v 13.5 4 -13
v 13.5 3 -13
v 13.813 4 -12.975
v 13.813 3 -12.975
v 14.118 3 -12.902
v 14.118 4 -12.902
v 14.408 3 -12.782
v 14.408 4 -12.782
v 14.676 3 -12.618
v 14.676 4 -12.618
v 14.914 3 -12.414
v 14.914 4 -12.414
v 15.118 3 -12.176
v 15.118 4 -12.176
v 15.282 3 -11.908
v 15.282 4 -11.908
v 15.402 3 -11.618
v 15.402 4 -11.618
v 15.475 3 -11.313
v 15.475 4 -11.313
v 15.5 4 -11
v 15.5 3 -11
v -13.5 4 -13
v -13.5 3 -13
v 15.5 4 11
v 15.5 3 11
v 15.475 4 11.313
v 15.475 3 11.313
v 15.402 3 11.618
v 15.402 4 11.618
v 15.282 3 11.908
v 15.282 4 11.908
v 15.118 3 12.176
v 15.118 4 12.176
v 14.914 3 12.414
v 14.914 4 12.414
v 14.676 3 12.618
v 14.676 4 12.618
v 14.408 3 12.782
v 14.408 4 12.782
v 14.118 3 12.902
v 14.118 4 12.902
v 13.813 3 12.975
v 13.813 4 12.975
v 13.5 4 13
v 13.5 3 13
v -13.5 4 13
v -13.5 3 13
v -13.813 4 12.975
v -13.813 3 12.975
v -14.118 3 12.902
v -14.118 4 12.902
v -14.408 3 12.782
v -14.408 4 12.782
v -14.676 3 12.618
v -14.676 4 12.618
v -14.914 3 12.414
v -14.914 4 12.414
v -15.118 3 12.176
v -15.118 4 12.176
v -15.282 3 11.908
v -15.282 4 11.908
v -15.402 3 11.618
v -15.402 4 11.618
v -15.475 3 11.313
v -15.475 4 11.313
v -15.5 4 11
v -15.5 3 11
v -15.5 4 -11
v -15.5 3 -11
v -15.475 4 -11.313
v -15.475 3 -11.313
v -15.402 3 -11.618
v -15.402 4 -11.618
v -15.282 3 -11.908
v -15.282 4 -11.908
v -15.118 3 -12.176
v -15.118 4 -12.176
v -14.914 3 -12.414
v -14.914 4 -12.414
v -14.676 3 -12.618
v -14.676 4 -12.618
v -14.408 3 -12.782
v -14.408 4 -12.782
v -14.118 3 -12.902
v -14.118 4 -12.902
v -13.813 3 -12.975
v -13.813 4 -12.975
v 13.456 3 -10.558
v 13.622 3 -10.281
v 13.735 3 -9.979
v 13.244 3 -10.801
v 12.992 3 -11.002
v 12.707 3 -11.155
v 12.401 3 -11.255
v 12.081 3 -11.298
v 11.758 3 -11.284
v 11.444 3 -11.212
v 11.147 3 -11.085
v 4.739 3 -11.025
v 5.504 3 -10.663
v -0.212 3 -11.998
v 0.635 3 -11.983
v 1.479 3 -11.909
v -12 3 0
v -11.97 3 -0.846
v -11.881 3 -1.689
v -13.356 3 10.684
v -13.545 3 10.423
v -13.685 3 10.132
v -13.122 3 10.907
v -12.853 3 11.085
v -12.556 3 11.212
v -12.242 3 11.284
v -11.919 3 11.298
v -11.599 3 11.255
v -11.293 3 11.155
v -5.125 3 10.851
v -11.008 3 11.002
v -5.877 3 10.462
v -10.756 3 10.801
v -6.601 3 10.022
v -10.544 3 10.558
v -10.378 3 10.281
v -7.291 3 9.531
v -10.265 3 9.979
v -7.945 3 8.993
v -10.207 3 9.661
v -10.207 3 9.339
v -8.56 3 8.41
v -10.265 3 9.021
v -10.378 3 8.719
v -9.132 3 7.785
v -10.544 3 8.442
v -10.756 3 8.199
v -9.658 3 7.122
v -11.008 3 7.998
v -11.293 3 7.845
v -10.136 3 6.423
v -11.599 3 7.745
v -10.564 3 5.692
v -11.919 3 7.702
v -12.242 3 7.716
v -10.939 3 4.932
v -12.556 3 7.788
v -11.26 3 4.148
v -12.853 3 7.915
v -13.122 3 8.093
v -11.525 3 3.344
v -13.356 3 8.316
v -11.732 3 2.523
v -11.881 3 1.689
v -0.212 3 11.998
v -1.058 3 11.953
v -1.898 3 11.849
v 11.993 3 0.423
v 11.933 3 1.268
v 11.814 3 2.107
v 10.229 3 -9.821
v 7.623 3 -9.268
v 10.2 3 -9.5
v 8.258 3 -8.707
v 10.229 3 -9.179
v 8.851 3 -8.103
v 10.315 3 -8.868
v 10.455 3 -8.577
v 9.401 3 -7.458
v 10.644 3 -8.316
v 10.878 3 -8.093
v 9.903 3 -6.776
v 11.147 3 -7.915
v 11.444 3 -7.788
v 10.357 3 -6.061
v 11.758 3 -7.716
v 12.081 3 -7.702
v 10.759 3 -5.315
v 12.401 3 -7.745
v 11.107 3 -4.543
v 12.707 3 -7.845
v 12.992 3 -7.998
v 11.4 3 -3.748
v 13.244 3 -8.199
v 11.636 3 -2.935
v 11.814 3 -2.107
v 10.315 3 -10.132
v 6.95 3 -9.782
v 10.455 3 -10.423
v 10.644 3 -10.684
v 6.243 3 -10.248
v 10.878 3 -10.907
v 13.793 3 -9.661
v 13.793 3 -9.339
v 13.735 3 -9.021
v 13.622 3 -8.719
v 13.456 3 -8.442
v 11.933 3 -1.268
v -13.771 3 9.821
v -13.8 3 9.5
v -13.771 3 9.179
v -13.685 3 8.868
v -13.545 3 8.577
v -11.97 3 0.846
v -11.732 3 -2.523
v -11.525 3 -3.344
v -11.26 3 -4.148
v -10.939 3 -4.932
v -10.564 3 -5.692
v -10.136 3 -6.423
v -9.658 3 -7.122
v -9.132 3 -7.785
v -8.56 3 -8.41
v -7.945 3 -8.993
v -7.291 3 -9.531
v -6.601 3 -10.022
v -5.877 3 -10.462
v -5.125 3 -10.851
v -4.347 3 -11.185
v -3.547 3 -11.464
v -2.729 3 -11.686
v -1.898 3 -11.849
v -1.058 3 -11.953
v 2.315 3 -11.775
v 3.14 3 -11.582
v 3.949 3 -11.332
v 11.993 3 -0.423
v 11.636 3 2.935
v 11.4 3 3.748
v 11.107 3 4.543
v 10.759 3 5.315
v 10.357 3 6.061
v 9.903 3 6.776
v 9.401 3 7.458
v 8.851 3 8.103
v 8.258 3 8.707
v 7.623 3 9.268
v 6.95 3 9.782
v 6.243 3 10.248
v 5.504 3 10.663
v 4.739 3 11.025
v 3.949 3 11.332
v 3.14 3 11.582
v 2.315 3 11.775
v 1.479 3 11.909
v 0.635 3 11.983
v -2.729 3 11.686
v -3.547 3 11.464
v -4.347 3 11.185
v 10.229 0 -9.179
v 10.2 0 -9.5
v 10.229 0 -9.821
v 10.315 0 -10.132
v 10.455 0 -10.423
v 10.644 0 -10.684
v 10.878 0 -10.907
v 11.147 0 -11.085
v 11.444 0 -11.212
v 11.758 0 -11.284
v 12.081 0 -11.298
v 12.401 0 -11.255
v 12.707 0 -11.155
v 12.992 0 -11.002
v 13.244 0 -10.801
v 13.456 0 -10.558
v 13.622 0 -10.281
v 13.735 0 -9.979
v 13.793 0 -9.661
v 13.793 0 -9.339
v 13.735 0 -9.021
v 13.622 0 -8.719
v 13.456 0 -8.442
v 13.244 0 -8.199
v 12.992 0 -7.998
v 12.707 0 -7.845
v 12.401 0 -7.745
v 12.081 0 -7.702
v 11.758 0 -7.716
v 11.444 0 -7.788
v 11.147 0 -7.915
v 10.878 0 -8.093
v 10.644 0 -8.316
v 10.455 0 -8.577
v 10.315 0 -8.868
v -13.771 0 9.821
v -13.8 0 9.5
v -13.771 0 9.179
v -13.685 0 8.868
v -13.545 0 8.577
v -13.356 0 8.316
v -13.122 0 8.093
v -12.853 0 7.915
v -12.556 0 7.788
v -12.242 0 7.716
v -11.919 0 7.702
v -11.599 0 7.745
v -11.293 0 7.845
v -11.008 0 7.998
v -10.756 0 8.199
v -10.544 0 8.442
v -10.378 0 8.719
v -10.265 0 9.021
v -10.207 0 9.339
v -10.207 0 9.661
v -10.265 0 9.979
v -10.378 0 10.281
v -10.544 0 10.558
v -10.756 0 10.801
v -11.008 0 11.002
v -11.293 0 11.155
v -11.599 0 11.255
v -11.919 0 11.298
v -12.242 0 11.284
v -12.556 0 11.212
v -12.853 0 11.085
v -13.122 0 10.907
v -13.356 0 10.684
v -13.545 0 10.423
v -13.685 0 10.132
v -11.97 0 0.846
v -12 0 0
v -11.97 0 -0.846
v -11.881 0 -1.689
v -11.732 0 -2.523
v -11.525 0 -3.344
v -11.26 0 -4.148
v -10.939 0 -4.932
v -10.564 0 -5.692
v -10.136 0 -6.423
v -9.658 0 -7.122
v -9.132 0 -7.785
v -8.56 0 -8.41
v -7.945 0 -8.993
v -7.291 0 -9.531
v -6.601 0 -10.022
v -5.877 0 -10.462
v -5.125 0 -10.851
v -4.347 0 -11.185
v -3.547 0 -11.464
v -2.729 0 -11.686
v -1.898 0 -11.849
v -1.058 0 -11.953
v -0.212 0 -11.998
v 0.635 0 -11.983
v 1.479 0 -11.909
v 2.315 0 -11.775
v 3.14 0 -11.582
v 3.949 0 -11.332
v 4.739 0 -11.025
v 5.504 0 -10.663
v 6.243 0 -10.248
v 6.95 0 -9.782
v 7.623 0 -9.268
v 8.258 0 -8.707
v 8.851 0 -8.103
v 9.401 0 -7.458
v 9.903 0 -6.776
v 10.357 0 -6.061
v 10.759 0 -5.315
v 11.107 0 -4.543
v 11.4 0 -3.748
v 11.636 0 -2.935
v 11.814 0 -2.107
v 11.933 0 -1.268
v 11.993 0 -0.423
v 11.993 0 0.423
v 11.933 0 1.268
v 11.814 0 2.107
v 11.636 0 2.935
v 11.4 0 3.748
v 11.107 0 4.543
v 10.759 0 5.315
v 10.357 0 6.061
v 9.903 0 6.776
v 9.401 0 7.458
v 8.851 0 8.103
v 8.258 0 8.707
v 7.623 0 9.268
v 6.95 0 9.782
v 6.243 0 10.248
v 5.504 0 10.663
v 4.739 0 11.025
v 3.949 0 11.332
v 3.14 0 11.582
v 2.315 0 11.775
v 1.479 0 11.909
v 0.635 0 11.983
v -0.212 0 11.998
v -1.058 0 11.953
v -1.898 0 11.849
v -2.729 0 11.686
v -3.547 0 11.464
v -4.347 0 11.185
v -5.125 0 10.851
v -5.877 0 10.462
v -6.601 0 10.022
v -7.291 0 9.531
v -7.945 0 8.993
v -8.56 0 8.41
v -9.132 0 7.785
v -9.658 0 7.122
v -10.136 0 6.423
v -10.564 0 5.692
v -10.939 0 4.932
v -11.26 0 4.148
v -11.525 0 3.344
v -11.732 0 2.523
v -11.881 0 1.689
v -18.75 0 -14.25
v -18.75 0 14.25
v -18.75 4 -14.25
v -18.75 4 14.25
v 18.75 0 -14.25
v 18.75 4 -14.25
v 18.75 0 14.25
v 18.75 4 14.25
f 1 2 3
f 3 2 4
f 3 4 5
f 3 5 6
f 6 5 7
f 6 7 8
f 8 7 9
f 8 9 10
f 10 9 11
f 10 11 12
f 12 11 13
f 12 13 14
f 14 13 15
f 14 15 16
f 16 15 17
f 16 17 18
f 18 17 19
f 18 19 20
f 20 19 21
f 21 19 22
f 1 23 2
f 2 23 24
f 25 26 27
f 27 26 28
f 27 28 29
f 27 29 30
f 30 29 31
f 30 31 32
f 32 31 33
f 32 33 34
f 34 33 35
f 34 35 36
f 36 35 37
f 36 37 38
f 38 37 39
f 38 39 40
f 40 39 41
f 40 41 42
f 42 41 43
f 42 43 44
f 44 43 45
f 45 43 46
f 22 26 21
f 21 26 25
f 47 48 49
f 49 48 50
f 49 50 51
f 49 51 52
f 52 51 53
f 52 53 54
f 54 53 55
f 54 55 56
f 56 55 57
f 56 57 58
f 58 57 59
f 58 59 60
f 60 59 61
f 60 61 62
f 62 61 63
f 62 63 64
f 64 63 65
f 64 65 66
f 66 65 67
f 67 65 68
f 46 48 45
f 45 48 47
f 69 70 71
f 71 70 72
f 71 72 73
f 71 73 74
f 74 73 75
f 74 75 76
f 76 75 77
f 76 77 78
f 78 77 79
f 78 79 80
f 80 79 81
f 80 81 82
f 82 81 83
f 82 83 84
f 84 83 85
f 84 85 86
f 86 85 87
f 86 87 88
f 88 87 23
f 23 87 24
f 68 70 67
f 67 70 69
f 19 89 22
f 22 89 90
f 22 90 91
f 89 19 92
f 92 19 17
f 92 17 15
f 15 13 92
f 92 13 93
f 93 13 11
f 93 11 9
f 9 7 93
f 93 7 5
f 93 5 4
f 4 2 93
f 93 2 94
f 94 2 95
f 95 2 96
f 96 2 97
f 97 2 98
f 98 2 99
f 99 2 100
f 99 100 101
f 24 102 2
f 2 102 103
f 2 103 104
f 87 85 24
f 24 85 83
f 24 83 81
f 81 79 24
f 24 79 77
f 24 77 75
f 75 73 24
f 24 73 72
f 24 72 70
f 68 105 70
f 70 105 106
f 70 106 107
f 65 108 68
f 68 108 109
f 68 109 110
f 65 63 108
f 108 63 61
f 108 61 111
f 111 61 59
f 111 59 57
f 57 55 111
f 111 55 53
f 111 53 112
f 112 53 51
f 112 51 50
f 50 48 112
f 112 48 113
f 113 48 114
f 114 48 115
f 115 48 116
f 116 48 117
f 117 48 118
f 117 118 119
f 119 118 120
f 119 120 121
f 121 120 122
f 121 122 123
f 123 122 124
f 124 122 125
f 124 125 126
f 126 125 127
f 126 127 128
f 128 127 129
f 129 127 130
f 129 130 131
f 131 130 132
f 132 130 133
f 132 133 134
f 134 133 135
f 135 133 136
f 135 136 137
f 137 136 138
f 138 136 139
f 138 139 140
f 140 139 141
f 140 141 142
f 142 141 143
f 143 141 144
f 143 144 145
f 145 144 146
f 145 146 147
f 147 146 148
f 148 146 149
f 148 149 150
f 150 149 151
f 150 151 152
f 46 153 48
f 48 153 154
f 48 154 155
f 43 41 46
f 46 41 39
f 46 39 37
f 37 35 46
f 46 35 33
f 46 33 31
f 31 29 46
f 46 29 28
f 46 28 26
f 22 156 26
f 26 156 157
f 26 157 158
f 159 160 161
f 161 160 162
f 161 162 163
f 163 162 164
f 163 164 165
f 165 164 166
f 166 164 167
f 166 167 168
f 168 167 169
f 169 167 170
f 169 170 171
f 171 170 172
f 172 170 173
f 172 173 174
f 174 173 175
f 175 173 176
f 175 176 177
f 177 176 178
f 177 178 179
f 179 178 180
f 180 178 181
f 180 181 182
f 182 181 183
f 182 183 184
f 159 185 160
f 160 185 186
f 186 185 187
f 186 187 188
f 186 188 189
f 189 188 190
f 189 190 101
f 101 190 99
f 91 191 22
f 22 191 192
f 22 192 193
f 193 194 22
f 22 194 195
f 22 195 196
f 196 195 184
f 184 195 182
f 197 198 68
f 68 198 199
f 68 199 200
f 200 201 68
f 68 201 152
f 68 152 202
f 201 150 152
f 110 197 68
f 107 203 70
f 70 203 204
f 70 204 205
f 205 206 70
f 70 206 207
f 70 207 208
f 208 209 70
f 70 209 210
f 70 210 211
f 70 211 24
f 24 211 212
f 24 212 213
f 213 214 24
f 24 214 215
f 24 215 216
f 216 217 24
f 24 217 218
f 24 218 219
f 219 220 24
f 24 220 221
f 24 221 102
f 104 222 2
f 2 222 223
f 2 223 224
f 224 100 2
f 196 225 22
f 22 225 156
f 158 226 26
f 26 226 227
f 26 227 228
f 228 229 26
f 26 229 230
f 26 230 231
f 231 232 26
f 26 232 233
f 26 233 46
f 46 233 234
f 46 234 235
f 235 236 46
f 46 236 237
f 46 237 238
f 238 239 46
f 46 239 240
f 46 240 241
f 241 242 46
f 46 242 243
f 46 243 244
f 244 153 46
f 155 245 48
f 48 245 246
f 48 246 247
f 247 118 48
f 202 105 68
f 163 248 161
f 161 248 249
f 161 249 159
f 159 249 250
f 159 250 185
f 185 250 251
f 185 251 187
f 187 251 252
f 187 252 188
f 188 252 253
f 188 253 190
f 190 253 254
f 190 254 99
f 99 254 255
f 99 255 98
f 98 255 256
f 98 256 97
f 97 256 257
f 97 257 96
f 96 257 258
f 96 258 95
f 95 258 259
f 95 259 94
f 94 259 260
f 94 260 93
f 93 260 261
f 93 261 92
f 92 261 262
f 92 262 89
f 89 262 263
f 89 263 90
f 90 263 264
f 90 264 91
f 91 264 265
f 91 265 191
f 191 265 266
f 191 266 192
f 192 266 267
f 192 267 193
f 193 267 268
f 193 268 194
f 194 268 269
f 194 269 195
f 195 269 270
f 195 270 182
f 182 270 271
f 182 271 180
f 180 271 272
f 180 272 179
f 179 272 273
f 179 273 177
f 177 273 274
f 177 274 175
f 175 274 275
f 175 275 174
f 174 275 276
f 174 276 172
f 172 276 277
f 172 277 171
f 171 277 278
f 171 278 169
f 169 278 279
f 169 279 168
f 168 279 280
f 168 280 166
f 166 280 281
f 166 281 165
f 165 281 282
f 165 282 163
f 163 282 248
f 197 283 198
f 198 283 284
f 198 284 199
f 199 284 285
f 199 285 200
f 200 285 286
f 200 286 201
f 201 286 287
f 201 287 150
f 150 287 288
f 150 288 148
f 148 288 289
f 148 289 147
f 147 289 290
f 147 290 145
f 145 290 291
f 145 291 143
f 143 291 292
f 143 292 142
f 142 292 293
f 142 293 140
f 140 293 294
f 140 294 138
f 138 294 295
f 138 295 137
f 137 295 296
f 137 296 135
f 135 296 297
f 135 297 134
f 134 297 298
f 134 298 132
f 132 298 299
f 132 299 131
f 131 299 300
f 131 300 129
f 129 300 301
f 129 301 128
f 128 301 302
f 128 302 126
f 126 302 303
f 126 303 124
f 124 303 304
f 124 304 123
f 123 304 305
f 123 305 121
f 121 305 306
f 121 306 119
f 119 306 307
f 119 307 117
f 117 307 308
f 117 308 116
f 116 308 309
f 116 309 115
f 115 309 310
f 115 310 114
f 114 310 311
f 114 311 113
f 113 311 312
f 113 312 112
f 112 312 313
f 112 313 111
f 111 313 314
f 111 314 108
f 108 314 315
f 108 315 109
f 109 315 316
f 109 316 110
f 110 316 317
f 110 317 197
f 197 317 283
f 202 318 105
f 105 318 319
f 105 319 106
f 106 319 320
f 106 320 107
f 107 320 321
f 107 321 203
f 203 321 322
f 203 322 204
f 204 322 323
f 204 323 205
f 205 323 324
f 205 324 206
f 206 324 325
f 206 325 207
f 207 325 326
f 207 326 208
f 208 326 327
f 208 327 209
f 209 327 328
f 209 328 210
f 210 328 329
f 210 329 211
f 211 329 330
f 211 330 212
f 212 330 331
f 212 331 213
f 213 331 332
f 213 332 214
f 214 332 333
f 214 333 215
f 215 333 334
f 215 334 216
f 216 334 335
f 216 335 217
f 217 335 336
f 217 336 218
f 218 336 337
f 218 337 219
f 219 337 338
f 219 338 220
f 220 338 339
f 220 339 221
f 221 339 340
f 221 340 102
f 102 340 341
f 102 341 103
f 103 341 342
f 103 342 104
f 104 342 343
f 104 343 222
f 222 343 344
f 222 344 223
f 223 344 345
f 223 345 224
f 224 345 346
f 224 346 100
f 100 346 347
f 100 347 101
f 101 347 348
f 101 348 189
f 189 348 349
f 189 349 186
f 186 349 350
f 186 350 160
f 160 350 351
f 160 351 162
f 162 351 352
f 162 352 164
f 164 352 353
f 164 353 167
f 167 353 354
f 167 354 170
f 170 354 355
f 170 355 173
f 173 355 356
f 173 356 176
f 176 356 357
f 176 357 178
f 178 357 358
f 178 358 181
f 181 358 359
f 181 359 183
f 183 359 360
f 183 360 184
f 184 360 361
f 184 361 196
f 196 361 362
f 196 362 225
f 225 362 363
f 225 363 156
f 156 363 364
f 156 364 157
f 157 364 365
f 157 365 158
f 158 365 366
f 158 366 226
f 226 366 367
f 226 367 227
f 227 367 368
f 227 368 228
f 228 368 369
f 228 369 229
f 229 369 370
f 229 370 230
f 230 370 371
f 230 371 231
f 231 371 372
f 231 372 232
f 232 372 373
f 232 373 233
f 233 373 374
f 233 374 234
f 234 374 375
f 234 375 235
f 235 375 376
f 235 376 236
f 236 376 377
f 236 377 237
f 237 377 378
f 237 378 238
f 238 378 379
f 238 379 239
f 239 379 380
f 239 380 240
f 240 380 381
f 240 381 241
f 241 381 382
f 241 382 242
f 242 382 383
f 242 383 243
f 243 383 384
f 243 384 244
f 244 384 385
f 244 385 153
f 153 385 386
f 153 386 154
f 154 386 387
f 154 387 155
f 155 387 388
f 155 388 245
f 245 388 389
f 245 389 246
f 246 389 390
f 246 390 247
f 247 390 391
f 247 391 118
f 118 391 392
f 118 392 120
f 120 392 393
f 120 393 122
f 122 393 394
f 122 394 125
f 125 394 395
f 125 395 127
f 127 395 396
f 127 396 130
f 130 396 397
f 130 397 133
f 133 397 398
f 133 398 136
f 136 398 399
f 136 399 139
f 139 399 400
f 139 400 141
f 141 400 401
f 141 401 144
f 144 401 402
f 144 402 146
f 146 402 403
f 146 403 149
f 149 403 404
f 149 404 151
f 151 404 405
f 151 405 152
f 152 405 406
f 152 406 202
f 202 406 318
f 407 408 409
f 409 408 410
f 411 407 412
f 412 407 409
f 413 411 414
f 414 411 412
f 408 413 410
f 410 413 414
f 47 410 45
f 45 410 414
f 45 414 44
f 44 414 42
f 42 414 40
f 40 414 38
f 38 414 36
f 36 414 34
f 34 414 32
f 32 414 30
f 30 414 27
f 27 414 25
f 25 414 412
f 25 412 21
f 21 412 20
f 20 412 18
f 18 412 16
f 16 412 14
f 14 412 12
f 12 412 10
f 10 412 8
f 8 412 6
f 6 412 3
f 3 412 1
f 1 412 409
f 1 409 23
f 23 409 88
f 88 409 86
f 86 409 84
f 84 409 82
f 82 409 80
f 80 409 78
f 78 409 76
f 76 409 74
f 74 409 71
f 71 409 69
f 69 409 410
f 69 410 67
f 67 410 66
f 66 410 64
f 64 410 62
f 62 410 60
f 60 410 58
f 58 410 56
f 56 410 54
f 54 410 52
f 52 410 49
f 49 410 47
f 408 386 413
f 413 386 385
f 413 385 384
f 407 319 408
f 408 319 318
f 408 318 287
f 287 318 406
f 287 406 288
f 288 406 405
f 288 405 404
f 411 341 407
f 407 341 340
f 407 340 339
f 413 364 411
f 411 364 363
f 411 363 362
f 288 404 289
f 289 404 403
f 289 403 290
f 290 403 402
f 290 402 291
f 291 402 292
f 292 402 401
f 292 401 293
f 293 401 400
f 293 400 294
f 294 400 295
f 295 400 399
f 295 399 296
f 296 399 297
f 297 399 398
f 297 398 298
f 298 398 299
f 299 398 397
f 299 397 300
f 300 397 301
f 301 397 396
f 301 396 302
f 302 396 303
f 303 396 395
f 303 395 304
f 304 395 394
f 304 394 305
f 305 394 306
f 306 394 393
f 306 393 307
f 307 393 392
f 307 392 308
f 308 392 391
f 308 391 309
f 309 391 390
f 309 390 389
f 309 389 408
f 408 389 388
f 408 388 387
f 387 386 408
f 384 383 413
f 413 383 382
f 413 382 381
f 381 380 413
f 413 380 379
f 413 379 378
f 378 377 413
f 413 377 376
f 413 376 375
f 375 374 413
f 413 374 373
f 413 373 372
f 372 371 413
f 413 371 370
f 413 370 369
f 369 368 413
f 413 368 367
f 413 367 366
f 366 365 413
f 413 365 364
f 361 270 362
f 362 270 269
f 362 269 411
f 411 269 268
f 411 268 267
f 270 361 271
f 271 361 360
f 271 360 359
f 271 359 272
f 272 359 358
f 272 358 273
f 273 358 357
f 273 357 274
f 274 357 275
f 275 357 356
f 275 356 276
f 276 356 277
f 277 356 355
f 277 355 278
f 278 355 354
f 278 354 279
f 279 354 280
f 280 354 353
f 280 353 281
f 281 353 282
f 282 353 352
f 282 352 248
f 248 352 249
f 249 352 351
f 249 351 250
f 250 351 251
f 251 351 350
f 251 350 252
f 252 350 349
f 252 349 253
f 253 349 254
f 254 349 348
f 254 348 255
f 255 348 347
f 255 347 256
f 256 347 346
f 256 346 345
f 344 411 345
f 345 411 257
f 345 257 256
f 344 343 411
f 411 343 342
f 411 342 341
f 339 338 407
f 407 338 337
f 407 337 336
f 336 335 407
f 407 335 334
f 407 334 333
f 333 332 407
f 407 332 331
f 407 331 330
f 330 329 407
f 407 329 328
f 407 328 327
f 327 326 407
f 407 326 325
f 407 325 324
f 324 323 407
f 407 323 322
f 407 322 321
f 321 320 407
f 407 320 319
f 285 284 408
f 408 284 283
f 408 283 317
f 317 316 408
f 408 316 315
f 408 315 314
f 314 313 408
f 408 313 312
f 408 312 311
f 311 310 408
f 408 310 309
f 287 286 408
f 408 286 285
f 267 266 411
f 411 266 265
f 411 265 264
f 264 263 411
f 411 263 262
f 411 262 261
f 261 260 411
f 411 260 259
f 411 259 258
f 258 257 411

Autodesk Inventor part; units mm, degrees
ref_plane "YZ Plane" through (0, 0, 0) normal (1, 0, 0) x (0, 1, 0)
ref_plane "XZ Plane" through (0, 0, 0) normal (0, 1, 0) x (-1, 0, 0)
ref_plane "XY Plane" through (0, 0, 0) normal (0, 0, 1) x (1, 0, 0)
sketch "Sketch1" plane through (0, 0, 0) normal (0, 1, 0) x (-1, 0, 0)
  line L0 (15.5, 13) -> (-15.5, 13)
  line L1 (-15.5, 13) -> (-15.5, -13)
  line L2 (-15.5, -13) -> (15.5, -13)
  line L3 (15.5, -13) -> (15.5, 13)
  line L4 (15.5, 13) -> (-15.5, -13) construction
  line L5 (-15.5, 13) -> (15.5, -13) construction
  circle A0 centre (0, 0) radius 12
  circle A1 centre (12, 9.5) radius 1.8
  circle A2 centre (-12, -9.5) radius 1.8
  line L6 (18.75, -14.25) -> (-18.75, -14.25)
  line L7 (-18.75, -14.25) -> (-18.75, 14.25)
  line L8 (-18.75, 14.25) -> (18.75, 14.25)
  line L9 (18.75, 14.25) -> (18.75, -14.25)
  line L10 (18.75, -14.25) -> (-18.75, 14.25) construction
  line L11 (-18.75, -14.25) -> (18.75, 14.25) construction
  dimension "d0" = 31
  dimension "d1" = 26
  dimension "d2" = 24
  dimension "d7" = 3.6
  dimension "d8" = 9.5
  dimension "d9" = 12
  dimension "d10" = 3.6
  dimension "d11" = 9.5
  dimension "d12" = 12
  dimension "d16" = 37.5
  dimension "d17" = 28.5
extrude "Extrusion2" add sketch "Sketch1" along normal blind 4 contours L3 L2 L1 L0 | L6 L7 L8 L9
sketch "Sketch2" plane through (0, 4, 0) normal (0, 1, 0) x (1, 0, 0)
  line L0 (15.5, 13) -> (-15.5, 13) projected
  line L1 (-15.5, -13) -> (15.5, -13) projected
  line L2 (-18.75, -14.25) -> (18.75, -14.25) projected
  line L3 (18.75, -14.25) -> (18.75, 14.25) projected
  line L4 (18.75, 14.25) -> (-18.75, 14.25) projected
  line L5 (-18.75, 14.25) -> (-18.75, -14.25) projected
  circle A0 centre (0, 0) radius 12 projected
  circle A1 centre (-12, -9.5) radius 1.8 projected
  circle A2 centre (12, 9.5) radius 1.8 projected
  line L6 (15.5, -13) -> (15.5, 13) projected
  line L7 (-15.5, 13) -> (-15.5, -13) projected
extrude "Extrusion3" cut sketch "Sketch2" against normal blind 1 contours L6 L1 L7 L0 | A0 | A1 | A2
fillet "Fillet2" radius 2 4 edges at (-15.5, 3.5, -13) (-15.5, 3.5, 13) (15.5, 3.5, 13) (15.5, 3.5, -13)
equation "\"d10\" = d7"
equation "\"d11\" = d8"
equation "\"d12\" = d9"
properties part number "inner clamp plate_3DPrint"
